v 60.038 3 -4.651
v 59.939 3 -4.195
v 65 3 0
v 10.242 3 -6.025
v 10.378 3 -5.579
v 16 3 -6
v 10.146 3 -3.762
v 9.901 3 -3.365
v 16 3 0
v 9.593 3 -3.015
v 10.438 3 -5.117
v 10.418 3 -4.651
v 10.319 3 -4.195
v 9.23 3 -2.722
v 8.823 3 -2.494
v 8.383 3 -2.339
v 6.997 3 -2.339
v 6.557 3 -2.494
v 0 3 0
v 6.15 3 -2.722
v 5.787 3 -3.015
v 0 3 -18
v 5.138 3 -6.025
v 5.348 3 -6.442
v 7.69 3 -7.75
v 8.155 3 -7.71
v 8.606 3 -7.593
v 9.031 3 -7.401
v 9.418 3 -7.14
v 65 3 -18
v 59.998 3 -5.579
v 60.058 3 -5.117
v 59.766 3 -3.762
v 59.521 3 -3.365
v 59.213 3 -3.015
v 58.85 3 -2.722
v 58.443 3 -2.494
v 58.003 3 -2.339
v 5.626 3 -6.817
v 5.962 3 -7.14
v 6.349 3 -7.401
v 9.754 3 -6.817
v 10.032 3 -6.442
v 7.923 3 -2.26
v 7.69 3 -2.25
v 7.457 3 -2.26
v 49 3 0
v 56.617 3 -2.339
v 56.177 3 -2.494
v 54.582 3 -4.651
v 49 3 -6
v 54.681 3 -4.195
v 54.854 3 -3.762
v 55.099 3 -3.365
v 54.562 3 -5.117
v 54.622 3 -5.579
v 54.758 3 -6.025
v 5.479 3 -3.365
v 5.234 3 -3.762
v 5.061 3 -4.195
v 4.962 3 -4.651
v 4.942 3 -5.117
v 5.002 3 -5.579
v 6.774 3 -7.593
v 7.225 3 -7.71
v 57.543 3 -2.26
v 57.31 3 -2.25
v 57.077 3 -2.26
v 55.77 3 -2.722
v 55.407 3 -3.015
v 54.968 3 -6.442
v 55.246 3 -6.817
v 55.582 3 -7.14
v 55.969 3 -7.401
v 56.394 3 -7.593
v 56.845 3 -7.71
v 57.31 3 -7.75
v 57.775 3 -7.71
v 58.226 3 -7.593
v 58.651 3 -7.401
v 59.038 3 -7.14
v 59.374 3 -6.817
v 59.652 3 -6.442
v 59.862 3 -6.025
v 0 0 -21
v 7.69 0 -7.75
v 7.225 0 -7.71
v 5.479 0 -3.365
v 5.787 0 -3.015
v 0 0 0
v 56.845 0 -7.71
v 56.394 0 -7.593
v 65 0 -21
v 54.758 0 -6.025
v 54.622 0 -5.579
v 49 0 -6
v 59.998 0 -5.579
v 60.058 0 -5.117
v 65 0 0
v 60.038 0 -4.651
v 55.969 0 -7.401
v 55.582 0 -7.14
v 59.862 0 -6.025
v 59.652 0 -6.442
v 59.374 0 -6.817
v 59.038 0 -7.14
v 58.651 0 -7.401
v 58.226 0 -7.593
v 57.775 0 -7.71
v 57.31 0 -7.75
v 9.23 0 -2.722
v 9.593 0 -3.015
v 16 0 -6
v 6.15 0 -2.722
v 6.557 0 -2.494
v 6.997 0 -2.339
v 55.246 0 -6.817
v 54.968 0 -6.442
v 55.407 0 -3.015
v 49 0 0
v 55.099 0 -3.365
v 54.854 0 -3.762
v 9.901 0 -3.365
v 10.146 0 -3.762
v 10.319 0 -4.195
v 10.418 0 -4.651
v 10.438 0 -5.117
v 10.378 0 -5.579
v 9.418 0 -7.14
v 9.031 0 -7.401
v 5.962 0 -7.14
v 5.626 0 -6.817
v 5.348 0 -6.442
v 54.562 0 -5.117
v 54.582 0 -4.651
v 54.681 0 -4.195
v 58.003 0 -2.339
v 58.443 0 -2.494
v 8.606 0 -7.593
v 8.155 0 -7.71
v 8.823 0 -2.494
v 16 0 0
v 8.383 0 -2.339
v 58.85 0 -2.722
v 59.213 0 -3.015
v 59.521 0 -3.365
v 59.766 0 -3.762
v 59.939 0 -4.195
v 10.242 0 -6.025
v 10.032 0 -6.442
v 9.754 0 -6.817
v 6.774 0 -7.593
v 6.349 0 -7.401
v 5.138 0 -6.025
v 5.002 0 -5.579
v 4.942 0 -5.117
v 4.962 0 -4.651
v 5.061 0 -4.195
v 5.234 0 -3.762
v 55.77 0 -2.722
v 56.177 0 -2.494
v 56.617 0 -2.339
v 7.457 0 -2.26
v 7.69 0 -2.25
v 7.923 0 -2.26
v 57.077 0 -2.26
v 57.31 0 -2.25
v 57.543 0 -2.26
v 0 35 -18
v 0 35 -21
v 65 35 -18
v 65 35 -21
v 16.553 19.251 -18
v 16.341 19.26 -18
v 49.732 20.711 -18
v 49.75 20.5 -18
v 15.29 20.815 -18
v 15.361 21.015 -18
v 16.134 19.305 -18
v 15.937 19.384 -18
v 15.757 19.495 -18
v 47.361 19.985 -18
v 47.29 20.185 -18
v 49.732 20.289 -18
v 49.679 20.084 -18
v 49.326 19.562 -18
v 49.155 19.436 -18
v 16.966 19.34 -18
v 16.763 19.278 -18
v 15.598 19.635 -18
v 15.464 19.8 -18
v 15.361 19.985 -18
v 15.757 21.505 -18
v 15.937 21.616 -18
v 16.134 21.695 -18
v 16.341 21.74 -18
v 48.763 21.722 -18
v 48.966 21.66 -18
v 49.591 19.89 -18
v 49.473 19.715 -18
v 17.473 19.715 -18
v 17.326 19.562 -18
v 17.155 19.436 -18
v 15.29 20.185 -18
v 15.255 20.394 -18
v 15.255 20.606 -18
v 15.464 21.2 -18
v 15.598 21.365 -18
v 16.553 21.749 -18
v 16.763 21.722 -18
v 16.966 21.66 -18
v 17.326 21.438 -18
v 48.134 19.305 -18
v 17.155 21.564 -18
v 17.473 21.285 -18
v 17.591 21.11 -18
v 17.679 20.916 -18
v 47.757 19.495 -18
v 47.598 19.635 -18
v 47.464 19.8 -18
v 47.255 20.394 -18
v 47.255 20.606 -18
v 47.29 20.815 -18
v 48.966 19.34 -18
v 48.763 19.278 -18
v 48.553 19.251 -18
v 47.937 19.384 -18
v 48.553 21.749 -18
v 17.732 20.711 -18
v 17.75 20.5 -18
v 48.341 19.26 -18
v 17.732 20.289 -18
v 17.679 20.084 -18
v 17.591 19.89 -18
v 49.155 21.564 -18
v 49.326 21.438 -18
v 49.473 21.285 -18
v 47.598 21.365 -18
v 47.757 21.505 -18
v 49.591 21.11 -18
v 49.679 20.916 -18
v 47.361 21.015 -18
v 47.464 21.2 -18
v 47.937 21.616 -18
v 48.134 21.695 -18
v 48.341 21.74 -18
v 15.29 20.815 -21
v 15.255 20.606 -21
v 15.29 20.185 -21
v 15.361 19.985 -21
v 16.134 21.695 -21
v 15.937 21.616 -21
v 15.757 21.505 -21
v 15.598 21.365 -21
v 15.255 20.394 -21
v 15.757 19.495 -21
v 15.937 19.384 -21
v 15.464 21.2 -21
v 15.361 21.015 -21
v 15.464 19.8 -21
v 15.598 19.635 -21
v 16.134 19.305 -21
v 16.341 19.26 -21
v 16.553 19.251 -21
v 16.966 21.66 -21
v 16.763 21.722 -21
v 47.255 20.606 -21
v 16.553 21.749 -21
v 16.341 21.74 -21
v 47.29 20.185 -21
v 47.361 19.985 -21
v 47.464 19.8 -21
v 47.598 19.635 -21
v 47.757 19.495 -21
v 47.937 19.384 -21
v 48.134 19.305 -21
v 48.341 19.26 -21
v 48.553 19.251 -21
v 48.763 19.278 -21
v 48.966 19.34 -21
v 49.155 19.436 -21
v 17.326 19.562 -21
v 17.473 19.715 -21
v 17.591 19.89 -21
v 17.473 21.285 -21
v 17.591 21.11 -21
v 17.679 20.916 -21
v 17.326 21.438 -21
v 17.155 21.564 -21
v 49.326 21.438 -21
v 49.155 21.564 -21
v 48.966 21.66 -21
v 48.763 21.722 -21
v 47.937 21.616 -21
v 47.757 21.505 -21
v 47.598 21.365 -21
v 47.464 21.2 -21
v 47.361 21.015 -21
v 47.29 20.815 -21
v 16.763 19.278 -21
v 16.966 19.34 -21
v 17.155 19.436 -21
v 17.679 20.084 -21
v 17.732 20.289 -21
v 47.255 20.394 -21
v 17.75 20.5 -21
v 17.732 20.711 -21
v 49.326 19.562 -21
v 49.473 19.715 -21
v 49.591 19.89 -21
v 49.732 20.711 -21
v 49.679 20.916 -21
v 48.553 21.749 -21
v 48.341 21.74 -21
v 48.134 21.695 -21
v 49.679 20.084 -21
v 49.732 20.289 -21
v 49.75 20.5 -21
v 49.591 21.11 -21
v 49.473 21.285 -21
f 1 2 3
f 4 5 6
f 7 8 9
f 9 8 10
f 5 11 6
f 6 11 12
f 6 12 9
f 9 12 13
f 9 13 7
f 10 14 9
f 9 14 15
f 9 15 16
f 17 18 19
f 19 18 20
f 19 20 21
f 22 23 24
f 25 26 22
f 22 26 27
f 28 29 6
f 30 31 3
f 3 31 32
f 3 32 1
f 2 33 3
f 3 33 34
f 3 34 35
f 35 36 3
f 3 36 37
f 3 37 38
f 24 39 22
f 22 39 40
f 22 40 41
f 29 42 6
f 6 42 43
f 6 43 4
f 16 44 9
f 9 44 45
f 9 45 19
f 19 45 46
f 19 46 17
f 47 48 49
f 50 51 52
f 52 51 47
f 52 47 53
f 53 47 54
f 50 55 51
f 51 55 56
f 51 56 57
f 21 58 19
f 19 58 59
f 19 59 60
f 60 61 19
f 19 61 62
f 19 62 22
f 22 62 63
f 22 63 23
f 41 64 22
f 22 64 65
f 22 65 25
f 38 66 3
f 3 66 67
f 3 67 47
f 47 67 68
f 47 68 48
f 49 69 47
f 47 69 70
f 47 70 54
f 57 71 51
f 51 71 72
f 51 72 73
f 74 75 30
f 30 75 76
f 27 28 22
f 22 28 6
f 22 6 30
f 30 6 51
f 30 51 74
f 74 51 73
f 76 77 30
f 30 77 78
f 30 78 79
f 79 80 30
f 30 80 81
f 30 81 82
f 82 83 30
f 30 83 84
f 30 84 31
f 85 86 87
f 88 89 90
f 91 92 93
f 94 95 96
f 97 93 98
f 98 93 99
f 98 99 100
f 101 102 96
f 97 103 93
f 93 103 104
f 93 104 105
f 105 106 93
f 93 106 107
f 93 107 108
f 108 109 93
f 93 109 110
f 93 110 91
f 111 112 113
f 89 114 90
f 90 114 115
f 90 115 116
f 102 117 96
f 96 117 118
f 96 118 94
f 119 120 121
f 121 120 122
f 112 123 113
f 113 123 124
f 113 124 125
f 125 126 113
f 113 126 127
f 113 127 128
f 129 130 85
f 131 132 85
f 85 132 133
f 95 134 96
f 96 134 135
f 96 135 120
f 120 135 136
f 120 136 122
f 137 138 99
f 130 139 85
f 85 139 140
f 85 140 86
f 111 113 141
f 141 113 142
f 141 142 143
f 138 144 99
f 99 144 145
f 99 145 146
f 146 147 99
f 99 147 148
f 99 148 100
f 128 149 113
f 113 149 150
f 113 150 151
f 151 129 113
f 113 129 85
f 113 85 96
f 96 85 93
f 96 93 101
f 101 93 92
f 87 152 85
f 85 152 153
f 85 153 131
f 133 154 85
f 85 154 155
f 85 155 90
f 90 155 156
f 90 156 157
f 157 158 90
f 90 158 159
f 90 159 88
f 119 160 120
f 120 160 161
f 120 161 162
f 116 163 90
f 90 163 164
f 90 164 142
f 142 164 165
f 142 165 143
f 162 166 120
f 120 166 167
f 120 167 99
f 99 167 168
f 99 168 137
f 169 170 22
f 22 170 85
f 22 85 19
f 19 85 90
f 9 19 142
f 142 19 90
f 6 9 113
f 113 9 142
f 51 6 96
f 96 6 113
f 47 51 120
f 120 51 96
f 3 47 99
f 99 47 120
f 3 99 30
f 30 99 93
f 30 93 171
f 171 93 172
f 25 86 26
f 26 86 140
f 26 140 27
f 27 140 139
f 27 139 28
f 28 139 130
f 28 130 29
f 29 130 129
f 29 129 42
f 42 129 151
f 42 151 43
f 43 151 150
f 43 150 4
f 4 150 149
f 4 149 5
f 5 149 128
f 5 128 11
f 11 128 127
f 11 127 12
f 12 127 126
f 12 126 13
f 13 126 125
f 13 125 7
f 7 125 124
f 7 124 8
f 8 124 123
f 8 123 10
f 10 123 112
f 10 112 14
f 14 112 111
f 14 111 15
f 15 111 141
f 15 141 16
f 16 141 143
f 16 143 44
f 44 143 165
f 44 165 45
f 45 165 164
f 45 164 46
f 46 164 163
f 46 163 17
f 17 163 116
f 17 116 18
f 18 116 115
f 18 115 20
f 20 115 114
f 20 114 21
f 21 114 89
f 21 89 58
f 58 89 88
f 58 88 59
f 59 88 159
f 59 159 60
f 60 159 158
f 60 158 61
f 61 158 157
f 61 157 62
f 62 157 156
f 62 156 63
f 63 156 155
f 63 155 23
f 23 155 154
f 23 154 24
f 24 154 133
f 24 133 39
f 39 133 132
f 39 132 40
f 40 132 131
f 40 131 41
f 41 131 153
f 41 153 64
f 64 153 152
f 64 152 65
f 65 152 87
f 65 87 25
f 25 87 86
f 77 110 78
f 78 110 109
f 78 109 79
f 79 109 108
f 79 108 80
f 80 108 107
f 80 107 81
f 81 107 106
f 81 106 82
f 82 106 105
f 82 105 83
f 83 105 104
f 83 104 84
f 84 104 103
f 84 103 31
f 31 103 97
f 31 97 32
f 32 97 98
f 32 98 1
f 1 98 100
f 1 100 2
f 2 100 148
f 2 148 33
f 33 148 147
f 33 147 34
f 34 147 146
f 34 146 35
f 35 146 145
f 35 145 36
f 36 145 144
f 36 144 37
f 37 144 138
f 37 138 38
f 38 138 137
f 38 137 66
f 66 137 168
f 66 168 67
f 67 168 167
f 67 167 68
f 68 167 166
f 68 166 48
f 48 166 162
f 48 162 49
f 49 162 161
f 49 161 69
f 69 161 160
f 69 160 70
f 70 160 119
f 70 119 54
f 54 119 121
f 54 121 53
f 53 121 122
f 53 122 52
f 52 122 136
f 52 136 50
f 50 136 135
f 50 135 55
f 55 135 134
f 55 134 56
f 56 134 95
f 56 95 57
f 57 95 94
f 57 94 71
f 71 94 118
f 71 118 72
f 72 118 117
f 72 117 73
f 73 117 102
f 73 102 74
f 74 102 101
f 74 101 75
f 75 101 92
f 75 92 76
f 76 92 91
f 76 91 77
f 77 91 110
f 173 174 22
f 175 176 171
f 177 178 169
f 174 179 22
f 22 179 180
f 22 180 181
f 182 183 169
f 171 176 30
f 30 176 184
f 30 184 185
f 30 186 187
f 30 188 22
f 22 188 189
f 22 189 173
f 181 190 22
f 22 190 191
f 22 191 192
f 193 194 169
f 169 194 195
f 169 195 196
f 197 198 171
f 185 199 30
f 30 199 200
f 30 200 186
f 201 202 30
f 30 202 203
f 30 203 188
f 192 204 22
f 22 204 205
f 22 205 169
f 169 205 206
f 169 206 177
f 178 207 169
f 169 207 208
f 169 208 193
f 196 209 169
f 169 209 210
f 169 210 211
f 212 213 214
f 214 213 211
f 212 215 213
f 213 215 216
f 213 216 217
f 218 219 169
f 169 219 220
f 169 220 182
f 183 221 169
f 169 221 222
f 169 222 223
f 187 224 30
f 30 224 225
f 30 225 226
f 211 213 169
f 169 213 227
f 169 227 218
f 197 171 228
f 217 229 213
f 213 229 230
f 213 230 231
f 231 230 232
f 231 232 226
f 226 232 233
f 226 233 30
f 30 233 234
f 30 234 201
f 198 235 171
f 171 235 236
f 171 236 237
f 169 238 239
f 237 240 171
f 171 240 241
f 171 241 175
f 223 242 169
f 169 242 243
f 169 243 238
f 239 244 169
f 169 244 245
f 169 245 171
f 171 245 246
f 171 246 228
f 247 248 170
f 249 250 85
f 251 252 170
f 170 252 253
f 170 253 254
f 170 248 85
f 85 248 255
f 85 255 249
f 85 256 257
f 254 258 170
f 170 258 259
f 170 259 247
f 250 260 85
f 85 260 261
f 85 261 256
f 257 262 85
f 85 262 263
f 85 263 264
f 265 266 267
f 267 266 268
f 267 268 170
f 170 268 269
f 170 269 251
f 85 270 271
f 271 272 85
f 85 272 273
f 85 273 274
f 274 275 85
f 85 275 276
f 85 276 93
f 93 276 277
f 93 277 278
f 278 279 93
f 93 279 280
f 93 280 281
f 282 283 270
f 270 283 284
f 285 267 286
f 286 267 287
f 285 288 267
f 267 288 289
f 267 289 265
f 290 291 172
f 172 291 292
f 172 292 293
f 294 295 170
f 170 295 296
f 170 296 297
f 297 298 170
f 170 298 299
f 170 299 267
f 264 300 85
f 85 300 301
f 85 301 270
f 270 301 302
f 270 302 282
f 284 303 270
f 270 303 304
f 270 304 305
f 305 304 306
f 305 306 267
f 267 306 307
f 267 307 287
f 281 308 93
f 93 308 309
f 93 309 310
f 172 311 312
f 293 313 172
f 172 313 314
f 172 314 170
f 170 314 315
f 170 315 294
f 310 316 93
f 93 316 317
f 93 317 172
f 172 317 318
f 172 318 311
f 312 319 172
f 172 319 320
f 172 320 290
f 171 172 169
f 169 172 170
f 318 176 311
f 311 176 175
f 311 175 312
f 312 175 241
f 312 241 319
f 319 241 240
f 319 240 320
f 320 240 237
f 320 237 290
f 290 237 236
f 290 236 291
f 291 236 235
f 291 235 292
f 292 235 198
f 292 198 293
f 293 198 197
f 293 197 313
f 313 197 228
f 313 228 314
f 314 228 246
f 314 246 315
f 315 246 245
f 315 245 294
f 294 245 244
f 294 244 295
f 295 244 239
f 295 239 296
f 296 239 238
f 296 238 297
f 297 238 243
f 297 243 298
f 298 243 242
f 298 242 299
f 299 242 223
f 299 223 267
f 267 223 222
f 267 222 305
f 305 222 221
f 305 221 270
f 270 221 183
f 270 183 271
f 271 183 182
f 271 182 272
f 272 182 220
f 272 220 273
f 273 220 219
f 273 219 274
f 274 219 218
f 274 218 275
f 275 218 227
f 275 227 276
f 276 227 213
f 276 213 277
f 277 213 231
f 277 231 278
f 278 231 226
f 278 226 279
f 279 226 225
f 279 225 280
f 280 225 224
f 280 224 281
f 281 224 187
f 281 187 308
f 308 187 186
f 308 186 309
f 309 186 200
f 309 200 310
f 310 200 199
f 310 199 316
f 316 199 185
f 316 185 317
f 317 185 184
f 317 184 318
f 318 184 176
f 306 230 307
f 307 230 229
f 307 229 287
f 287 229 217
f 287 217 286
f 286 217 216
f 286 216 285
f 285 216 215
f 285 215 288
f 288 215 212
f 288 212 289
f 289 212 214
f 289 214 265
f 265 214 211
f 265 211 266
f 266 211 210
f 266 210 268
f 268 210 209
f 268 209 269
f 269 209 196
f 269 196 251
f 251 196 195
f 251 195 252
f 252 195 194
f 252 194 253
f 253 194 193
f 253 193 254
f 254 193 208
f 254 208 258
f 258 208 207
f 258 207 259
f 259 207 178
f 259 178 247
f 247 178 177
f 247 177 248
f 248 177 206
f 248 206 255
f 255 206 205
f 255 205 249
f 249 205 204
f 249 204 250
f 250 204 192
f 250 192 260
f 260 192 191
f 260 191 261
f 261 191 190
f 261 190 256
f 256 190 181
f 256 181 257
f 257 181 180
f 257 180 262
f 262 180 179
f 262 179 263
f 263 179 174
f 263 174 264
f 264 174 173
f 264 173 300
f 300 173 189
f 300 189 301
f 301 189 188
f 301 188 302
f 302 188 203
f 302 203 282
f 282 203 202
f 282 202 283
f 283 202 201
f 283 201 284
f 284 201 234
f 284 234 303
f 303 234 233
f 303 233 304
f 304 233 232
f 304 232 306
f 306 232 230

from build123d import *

# Parameters (mm, degrees)
SKETCH1_R           = 2.75
BOSS_EXTRUDE1_DEPTH = 3
SKETCH2_W           = 65
SKETCH2_H           = 3
BOSS_EXTRUDE2_DEPTH = 35
SKETCH3_R           = 1.25
CUT_EXTRUDE1_DEPTH  = 4


with BuildPart() as part:
    # Sketch1 → Boss-Extrude1 (new body)
    with BuildSketch(Plane(origin=(0, 0, 0), x_dir=(1, 0, 0), z_dir=(0, 1, 0))):
        Polygon((0, 0), (16, 0), (16, 6), (49, 6), (49, 0), (65, 0), (65, 18), (0, 18), align=None)
        with Locations((7.69, 5)):
            Circle(SKETCH1_R, mode=Mode.SUBTRACT)
        with Locations((57.31, 5)):
            Circle(SKETCH1_R, mode=Mode.SUBTRACT)
    extrude(amount=BOSS_EXTRUDE1_DEPTH)

    # Sketch2 → Boss-Extrude2 (add)
    with BuildSketch(Plane(origin=(0, 0, 0), x_dir=(1, 0, 0), z_dir=(0, 1, 0))):
        with Locations((32.5, 19.5)):
            Rectangle(SKETCH2_W, SKETCH2_H)
    extrude(amount=BOSS_EXTRUDE2_DEPTH)

    # Sketch3 → Cut-Extrude1 (cut, through all)
    with BuildSketch(Plane.XY.offset(-18)):
        with Locations((16.5, 20.5)):
            Circle(SKETCH3_R)
        with Locations((48.5, 20.5)):
            Circle(SKETCH3_R)
    extrude(amount=-CUT_EXTRUDE1_DEPTH, mode=Mode.SUBTRACT)


solid = part.part
